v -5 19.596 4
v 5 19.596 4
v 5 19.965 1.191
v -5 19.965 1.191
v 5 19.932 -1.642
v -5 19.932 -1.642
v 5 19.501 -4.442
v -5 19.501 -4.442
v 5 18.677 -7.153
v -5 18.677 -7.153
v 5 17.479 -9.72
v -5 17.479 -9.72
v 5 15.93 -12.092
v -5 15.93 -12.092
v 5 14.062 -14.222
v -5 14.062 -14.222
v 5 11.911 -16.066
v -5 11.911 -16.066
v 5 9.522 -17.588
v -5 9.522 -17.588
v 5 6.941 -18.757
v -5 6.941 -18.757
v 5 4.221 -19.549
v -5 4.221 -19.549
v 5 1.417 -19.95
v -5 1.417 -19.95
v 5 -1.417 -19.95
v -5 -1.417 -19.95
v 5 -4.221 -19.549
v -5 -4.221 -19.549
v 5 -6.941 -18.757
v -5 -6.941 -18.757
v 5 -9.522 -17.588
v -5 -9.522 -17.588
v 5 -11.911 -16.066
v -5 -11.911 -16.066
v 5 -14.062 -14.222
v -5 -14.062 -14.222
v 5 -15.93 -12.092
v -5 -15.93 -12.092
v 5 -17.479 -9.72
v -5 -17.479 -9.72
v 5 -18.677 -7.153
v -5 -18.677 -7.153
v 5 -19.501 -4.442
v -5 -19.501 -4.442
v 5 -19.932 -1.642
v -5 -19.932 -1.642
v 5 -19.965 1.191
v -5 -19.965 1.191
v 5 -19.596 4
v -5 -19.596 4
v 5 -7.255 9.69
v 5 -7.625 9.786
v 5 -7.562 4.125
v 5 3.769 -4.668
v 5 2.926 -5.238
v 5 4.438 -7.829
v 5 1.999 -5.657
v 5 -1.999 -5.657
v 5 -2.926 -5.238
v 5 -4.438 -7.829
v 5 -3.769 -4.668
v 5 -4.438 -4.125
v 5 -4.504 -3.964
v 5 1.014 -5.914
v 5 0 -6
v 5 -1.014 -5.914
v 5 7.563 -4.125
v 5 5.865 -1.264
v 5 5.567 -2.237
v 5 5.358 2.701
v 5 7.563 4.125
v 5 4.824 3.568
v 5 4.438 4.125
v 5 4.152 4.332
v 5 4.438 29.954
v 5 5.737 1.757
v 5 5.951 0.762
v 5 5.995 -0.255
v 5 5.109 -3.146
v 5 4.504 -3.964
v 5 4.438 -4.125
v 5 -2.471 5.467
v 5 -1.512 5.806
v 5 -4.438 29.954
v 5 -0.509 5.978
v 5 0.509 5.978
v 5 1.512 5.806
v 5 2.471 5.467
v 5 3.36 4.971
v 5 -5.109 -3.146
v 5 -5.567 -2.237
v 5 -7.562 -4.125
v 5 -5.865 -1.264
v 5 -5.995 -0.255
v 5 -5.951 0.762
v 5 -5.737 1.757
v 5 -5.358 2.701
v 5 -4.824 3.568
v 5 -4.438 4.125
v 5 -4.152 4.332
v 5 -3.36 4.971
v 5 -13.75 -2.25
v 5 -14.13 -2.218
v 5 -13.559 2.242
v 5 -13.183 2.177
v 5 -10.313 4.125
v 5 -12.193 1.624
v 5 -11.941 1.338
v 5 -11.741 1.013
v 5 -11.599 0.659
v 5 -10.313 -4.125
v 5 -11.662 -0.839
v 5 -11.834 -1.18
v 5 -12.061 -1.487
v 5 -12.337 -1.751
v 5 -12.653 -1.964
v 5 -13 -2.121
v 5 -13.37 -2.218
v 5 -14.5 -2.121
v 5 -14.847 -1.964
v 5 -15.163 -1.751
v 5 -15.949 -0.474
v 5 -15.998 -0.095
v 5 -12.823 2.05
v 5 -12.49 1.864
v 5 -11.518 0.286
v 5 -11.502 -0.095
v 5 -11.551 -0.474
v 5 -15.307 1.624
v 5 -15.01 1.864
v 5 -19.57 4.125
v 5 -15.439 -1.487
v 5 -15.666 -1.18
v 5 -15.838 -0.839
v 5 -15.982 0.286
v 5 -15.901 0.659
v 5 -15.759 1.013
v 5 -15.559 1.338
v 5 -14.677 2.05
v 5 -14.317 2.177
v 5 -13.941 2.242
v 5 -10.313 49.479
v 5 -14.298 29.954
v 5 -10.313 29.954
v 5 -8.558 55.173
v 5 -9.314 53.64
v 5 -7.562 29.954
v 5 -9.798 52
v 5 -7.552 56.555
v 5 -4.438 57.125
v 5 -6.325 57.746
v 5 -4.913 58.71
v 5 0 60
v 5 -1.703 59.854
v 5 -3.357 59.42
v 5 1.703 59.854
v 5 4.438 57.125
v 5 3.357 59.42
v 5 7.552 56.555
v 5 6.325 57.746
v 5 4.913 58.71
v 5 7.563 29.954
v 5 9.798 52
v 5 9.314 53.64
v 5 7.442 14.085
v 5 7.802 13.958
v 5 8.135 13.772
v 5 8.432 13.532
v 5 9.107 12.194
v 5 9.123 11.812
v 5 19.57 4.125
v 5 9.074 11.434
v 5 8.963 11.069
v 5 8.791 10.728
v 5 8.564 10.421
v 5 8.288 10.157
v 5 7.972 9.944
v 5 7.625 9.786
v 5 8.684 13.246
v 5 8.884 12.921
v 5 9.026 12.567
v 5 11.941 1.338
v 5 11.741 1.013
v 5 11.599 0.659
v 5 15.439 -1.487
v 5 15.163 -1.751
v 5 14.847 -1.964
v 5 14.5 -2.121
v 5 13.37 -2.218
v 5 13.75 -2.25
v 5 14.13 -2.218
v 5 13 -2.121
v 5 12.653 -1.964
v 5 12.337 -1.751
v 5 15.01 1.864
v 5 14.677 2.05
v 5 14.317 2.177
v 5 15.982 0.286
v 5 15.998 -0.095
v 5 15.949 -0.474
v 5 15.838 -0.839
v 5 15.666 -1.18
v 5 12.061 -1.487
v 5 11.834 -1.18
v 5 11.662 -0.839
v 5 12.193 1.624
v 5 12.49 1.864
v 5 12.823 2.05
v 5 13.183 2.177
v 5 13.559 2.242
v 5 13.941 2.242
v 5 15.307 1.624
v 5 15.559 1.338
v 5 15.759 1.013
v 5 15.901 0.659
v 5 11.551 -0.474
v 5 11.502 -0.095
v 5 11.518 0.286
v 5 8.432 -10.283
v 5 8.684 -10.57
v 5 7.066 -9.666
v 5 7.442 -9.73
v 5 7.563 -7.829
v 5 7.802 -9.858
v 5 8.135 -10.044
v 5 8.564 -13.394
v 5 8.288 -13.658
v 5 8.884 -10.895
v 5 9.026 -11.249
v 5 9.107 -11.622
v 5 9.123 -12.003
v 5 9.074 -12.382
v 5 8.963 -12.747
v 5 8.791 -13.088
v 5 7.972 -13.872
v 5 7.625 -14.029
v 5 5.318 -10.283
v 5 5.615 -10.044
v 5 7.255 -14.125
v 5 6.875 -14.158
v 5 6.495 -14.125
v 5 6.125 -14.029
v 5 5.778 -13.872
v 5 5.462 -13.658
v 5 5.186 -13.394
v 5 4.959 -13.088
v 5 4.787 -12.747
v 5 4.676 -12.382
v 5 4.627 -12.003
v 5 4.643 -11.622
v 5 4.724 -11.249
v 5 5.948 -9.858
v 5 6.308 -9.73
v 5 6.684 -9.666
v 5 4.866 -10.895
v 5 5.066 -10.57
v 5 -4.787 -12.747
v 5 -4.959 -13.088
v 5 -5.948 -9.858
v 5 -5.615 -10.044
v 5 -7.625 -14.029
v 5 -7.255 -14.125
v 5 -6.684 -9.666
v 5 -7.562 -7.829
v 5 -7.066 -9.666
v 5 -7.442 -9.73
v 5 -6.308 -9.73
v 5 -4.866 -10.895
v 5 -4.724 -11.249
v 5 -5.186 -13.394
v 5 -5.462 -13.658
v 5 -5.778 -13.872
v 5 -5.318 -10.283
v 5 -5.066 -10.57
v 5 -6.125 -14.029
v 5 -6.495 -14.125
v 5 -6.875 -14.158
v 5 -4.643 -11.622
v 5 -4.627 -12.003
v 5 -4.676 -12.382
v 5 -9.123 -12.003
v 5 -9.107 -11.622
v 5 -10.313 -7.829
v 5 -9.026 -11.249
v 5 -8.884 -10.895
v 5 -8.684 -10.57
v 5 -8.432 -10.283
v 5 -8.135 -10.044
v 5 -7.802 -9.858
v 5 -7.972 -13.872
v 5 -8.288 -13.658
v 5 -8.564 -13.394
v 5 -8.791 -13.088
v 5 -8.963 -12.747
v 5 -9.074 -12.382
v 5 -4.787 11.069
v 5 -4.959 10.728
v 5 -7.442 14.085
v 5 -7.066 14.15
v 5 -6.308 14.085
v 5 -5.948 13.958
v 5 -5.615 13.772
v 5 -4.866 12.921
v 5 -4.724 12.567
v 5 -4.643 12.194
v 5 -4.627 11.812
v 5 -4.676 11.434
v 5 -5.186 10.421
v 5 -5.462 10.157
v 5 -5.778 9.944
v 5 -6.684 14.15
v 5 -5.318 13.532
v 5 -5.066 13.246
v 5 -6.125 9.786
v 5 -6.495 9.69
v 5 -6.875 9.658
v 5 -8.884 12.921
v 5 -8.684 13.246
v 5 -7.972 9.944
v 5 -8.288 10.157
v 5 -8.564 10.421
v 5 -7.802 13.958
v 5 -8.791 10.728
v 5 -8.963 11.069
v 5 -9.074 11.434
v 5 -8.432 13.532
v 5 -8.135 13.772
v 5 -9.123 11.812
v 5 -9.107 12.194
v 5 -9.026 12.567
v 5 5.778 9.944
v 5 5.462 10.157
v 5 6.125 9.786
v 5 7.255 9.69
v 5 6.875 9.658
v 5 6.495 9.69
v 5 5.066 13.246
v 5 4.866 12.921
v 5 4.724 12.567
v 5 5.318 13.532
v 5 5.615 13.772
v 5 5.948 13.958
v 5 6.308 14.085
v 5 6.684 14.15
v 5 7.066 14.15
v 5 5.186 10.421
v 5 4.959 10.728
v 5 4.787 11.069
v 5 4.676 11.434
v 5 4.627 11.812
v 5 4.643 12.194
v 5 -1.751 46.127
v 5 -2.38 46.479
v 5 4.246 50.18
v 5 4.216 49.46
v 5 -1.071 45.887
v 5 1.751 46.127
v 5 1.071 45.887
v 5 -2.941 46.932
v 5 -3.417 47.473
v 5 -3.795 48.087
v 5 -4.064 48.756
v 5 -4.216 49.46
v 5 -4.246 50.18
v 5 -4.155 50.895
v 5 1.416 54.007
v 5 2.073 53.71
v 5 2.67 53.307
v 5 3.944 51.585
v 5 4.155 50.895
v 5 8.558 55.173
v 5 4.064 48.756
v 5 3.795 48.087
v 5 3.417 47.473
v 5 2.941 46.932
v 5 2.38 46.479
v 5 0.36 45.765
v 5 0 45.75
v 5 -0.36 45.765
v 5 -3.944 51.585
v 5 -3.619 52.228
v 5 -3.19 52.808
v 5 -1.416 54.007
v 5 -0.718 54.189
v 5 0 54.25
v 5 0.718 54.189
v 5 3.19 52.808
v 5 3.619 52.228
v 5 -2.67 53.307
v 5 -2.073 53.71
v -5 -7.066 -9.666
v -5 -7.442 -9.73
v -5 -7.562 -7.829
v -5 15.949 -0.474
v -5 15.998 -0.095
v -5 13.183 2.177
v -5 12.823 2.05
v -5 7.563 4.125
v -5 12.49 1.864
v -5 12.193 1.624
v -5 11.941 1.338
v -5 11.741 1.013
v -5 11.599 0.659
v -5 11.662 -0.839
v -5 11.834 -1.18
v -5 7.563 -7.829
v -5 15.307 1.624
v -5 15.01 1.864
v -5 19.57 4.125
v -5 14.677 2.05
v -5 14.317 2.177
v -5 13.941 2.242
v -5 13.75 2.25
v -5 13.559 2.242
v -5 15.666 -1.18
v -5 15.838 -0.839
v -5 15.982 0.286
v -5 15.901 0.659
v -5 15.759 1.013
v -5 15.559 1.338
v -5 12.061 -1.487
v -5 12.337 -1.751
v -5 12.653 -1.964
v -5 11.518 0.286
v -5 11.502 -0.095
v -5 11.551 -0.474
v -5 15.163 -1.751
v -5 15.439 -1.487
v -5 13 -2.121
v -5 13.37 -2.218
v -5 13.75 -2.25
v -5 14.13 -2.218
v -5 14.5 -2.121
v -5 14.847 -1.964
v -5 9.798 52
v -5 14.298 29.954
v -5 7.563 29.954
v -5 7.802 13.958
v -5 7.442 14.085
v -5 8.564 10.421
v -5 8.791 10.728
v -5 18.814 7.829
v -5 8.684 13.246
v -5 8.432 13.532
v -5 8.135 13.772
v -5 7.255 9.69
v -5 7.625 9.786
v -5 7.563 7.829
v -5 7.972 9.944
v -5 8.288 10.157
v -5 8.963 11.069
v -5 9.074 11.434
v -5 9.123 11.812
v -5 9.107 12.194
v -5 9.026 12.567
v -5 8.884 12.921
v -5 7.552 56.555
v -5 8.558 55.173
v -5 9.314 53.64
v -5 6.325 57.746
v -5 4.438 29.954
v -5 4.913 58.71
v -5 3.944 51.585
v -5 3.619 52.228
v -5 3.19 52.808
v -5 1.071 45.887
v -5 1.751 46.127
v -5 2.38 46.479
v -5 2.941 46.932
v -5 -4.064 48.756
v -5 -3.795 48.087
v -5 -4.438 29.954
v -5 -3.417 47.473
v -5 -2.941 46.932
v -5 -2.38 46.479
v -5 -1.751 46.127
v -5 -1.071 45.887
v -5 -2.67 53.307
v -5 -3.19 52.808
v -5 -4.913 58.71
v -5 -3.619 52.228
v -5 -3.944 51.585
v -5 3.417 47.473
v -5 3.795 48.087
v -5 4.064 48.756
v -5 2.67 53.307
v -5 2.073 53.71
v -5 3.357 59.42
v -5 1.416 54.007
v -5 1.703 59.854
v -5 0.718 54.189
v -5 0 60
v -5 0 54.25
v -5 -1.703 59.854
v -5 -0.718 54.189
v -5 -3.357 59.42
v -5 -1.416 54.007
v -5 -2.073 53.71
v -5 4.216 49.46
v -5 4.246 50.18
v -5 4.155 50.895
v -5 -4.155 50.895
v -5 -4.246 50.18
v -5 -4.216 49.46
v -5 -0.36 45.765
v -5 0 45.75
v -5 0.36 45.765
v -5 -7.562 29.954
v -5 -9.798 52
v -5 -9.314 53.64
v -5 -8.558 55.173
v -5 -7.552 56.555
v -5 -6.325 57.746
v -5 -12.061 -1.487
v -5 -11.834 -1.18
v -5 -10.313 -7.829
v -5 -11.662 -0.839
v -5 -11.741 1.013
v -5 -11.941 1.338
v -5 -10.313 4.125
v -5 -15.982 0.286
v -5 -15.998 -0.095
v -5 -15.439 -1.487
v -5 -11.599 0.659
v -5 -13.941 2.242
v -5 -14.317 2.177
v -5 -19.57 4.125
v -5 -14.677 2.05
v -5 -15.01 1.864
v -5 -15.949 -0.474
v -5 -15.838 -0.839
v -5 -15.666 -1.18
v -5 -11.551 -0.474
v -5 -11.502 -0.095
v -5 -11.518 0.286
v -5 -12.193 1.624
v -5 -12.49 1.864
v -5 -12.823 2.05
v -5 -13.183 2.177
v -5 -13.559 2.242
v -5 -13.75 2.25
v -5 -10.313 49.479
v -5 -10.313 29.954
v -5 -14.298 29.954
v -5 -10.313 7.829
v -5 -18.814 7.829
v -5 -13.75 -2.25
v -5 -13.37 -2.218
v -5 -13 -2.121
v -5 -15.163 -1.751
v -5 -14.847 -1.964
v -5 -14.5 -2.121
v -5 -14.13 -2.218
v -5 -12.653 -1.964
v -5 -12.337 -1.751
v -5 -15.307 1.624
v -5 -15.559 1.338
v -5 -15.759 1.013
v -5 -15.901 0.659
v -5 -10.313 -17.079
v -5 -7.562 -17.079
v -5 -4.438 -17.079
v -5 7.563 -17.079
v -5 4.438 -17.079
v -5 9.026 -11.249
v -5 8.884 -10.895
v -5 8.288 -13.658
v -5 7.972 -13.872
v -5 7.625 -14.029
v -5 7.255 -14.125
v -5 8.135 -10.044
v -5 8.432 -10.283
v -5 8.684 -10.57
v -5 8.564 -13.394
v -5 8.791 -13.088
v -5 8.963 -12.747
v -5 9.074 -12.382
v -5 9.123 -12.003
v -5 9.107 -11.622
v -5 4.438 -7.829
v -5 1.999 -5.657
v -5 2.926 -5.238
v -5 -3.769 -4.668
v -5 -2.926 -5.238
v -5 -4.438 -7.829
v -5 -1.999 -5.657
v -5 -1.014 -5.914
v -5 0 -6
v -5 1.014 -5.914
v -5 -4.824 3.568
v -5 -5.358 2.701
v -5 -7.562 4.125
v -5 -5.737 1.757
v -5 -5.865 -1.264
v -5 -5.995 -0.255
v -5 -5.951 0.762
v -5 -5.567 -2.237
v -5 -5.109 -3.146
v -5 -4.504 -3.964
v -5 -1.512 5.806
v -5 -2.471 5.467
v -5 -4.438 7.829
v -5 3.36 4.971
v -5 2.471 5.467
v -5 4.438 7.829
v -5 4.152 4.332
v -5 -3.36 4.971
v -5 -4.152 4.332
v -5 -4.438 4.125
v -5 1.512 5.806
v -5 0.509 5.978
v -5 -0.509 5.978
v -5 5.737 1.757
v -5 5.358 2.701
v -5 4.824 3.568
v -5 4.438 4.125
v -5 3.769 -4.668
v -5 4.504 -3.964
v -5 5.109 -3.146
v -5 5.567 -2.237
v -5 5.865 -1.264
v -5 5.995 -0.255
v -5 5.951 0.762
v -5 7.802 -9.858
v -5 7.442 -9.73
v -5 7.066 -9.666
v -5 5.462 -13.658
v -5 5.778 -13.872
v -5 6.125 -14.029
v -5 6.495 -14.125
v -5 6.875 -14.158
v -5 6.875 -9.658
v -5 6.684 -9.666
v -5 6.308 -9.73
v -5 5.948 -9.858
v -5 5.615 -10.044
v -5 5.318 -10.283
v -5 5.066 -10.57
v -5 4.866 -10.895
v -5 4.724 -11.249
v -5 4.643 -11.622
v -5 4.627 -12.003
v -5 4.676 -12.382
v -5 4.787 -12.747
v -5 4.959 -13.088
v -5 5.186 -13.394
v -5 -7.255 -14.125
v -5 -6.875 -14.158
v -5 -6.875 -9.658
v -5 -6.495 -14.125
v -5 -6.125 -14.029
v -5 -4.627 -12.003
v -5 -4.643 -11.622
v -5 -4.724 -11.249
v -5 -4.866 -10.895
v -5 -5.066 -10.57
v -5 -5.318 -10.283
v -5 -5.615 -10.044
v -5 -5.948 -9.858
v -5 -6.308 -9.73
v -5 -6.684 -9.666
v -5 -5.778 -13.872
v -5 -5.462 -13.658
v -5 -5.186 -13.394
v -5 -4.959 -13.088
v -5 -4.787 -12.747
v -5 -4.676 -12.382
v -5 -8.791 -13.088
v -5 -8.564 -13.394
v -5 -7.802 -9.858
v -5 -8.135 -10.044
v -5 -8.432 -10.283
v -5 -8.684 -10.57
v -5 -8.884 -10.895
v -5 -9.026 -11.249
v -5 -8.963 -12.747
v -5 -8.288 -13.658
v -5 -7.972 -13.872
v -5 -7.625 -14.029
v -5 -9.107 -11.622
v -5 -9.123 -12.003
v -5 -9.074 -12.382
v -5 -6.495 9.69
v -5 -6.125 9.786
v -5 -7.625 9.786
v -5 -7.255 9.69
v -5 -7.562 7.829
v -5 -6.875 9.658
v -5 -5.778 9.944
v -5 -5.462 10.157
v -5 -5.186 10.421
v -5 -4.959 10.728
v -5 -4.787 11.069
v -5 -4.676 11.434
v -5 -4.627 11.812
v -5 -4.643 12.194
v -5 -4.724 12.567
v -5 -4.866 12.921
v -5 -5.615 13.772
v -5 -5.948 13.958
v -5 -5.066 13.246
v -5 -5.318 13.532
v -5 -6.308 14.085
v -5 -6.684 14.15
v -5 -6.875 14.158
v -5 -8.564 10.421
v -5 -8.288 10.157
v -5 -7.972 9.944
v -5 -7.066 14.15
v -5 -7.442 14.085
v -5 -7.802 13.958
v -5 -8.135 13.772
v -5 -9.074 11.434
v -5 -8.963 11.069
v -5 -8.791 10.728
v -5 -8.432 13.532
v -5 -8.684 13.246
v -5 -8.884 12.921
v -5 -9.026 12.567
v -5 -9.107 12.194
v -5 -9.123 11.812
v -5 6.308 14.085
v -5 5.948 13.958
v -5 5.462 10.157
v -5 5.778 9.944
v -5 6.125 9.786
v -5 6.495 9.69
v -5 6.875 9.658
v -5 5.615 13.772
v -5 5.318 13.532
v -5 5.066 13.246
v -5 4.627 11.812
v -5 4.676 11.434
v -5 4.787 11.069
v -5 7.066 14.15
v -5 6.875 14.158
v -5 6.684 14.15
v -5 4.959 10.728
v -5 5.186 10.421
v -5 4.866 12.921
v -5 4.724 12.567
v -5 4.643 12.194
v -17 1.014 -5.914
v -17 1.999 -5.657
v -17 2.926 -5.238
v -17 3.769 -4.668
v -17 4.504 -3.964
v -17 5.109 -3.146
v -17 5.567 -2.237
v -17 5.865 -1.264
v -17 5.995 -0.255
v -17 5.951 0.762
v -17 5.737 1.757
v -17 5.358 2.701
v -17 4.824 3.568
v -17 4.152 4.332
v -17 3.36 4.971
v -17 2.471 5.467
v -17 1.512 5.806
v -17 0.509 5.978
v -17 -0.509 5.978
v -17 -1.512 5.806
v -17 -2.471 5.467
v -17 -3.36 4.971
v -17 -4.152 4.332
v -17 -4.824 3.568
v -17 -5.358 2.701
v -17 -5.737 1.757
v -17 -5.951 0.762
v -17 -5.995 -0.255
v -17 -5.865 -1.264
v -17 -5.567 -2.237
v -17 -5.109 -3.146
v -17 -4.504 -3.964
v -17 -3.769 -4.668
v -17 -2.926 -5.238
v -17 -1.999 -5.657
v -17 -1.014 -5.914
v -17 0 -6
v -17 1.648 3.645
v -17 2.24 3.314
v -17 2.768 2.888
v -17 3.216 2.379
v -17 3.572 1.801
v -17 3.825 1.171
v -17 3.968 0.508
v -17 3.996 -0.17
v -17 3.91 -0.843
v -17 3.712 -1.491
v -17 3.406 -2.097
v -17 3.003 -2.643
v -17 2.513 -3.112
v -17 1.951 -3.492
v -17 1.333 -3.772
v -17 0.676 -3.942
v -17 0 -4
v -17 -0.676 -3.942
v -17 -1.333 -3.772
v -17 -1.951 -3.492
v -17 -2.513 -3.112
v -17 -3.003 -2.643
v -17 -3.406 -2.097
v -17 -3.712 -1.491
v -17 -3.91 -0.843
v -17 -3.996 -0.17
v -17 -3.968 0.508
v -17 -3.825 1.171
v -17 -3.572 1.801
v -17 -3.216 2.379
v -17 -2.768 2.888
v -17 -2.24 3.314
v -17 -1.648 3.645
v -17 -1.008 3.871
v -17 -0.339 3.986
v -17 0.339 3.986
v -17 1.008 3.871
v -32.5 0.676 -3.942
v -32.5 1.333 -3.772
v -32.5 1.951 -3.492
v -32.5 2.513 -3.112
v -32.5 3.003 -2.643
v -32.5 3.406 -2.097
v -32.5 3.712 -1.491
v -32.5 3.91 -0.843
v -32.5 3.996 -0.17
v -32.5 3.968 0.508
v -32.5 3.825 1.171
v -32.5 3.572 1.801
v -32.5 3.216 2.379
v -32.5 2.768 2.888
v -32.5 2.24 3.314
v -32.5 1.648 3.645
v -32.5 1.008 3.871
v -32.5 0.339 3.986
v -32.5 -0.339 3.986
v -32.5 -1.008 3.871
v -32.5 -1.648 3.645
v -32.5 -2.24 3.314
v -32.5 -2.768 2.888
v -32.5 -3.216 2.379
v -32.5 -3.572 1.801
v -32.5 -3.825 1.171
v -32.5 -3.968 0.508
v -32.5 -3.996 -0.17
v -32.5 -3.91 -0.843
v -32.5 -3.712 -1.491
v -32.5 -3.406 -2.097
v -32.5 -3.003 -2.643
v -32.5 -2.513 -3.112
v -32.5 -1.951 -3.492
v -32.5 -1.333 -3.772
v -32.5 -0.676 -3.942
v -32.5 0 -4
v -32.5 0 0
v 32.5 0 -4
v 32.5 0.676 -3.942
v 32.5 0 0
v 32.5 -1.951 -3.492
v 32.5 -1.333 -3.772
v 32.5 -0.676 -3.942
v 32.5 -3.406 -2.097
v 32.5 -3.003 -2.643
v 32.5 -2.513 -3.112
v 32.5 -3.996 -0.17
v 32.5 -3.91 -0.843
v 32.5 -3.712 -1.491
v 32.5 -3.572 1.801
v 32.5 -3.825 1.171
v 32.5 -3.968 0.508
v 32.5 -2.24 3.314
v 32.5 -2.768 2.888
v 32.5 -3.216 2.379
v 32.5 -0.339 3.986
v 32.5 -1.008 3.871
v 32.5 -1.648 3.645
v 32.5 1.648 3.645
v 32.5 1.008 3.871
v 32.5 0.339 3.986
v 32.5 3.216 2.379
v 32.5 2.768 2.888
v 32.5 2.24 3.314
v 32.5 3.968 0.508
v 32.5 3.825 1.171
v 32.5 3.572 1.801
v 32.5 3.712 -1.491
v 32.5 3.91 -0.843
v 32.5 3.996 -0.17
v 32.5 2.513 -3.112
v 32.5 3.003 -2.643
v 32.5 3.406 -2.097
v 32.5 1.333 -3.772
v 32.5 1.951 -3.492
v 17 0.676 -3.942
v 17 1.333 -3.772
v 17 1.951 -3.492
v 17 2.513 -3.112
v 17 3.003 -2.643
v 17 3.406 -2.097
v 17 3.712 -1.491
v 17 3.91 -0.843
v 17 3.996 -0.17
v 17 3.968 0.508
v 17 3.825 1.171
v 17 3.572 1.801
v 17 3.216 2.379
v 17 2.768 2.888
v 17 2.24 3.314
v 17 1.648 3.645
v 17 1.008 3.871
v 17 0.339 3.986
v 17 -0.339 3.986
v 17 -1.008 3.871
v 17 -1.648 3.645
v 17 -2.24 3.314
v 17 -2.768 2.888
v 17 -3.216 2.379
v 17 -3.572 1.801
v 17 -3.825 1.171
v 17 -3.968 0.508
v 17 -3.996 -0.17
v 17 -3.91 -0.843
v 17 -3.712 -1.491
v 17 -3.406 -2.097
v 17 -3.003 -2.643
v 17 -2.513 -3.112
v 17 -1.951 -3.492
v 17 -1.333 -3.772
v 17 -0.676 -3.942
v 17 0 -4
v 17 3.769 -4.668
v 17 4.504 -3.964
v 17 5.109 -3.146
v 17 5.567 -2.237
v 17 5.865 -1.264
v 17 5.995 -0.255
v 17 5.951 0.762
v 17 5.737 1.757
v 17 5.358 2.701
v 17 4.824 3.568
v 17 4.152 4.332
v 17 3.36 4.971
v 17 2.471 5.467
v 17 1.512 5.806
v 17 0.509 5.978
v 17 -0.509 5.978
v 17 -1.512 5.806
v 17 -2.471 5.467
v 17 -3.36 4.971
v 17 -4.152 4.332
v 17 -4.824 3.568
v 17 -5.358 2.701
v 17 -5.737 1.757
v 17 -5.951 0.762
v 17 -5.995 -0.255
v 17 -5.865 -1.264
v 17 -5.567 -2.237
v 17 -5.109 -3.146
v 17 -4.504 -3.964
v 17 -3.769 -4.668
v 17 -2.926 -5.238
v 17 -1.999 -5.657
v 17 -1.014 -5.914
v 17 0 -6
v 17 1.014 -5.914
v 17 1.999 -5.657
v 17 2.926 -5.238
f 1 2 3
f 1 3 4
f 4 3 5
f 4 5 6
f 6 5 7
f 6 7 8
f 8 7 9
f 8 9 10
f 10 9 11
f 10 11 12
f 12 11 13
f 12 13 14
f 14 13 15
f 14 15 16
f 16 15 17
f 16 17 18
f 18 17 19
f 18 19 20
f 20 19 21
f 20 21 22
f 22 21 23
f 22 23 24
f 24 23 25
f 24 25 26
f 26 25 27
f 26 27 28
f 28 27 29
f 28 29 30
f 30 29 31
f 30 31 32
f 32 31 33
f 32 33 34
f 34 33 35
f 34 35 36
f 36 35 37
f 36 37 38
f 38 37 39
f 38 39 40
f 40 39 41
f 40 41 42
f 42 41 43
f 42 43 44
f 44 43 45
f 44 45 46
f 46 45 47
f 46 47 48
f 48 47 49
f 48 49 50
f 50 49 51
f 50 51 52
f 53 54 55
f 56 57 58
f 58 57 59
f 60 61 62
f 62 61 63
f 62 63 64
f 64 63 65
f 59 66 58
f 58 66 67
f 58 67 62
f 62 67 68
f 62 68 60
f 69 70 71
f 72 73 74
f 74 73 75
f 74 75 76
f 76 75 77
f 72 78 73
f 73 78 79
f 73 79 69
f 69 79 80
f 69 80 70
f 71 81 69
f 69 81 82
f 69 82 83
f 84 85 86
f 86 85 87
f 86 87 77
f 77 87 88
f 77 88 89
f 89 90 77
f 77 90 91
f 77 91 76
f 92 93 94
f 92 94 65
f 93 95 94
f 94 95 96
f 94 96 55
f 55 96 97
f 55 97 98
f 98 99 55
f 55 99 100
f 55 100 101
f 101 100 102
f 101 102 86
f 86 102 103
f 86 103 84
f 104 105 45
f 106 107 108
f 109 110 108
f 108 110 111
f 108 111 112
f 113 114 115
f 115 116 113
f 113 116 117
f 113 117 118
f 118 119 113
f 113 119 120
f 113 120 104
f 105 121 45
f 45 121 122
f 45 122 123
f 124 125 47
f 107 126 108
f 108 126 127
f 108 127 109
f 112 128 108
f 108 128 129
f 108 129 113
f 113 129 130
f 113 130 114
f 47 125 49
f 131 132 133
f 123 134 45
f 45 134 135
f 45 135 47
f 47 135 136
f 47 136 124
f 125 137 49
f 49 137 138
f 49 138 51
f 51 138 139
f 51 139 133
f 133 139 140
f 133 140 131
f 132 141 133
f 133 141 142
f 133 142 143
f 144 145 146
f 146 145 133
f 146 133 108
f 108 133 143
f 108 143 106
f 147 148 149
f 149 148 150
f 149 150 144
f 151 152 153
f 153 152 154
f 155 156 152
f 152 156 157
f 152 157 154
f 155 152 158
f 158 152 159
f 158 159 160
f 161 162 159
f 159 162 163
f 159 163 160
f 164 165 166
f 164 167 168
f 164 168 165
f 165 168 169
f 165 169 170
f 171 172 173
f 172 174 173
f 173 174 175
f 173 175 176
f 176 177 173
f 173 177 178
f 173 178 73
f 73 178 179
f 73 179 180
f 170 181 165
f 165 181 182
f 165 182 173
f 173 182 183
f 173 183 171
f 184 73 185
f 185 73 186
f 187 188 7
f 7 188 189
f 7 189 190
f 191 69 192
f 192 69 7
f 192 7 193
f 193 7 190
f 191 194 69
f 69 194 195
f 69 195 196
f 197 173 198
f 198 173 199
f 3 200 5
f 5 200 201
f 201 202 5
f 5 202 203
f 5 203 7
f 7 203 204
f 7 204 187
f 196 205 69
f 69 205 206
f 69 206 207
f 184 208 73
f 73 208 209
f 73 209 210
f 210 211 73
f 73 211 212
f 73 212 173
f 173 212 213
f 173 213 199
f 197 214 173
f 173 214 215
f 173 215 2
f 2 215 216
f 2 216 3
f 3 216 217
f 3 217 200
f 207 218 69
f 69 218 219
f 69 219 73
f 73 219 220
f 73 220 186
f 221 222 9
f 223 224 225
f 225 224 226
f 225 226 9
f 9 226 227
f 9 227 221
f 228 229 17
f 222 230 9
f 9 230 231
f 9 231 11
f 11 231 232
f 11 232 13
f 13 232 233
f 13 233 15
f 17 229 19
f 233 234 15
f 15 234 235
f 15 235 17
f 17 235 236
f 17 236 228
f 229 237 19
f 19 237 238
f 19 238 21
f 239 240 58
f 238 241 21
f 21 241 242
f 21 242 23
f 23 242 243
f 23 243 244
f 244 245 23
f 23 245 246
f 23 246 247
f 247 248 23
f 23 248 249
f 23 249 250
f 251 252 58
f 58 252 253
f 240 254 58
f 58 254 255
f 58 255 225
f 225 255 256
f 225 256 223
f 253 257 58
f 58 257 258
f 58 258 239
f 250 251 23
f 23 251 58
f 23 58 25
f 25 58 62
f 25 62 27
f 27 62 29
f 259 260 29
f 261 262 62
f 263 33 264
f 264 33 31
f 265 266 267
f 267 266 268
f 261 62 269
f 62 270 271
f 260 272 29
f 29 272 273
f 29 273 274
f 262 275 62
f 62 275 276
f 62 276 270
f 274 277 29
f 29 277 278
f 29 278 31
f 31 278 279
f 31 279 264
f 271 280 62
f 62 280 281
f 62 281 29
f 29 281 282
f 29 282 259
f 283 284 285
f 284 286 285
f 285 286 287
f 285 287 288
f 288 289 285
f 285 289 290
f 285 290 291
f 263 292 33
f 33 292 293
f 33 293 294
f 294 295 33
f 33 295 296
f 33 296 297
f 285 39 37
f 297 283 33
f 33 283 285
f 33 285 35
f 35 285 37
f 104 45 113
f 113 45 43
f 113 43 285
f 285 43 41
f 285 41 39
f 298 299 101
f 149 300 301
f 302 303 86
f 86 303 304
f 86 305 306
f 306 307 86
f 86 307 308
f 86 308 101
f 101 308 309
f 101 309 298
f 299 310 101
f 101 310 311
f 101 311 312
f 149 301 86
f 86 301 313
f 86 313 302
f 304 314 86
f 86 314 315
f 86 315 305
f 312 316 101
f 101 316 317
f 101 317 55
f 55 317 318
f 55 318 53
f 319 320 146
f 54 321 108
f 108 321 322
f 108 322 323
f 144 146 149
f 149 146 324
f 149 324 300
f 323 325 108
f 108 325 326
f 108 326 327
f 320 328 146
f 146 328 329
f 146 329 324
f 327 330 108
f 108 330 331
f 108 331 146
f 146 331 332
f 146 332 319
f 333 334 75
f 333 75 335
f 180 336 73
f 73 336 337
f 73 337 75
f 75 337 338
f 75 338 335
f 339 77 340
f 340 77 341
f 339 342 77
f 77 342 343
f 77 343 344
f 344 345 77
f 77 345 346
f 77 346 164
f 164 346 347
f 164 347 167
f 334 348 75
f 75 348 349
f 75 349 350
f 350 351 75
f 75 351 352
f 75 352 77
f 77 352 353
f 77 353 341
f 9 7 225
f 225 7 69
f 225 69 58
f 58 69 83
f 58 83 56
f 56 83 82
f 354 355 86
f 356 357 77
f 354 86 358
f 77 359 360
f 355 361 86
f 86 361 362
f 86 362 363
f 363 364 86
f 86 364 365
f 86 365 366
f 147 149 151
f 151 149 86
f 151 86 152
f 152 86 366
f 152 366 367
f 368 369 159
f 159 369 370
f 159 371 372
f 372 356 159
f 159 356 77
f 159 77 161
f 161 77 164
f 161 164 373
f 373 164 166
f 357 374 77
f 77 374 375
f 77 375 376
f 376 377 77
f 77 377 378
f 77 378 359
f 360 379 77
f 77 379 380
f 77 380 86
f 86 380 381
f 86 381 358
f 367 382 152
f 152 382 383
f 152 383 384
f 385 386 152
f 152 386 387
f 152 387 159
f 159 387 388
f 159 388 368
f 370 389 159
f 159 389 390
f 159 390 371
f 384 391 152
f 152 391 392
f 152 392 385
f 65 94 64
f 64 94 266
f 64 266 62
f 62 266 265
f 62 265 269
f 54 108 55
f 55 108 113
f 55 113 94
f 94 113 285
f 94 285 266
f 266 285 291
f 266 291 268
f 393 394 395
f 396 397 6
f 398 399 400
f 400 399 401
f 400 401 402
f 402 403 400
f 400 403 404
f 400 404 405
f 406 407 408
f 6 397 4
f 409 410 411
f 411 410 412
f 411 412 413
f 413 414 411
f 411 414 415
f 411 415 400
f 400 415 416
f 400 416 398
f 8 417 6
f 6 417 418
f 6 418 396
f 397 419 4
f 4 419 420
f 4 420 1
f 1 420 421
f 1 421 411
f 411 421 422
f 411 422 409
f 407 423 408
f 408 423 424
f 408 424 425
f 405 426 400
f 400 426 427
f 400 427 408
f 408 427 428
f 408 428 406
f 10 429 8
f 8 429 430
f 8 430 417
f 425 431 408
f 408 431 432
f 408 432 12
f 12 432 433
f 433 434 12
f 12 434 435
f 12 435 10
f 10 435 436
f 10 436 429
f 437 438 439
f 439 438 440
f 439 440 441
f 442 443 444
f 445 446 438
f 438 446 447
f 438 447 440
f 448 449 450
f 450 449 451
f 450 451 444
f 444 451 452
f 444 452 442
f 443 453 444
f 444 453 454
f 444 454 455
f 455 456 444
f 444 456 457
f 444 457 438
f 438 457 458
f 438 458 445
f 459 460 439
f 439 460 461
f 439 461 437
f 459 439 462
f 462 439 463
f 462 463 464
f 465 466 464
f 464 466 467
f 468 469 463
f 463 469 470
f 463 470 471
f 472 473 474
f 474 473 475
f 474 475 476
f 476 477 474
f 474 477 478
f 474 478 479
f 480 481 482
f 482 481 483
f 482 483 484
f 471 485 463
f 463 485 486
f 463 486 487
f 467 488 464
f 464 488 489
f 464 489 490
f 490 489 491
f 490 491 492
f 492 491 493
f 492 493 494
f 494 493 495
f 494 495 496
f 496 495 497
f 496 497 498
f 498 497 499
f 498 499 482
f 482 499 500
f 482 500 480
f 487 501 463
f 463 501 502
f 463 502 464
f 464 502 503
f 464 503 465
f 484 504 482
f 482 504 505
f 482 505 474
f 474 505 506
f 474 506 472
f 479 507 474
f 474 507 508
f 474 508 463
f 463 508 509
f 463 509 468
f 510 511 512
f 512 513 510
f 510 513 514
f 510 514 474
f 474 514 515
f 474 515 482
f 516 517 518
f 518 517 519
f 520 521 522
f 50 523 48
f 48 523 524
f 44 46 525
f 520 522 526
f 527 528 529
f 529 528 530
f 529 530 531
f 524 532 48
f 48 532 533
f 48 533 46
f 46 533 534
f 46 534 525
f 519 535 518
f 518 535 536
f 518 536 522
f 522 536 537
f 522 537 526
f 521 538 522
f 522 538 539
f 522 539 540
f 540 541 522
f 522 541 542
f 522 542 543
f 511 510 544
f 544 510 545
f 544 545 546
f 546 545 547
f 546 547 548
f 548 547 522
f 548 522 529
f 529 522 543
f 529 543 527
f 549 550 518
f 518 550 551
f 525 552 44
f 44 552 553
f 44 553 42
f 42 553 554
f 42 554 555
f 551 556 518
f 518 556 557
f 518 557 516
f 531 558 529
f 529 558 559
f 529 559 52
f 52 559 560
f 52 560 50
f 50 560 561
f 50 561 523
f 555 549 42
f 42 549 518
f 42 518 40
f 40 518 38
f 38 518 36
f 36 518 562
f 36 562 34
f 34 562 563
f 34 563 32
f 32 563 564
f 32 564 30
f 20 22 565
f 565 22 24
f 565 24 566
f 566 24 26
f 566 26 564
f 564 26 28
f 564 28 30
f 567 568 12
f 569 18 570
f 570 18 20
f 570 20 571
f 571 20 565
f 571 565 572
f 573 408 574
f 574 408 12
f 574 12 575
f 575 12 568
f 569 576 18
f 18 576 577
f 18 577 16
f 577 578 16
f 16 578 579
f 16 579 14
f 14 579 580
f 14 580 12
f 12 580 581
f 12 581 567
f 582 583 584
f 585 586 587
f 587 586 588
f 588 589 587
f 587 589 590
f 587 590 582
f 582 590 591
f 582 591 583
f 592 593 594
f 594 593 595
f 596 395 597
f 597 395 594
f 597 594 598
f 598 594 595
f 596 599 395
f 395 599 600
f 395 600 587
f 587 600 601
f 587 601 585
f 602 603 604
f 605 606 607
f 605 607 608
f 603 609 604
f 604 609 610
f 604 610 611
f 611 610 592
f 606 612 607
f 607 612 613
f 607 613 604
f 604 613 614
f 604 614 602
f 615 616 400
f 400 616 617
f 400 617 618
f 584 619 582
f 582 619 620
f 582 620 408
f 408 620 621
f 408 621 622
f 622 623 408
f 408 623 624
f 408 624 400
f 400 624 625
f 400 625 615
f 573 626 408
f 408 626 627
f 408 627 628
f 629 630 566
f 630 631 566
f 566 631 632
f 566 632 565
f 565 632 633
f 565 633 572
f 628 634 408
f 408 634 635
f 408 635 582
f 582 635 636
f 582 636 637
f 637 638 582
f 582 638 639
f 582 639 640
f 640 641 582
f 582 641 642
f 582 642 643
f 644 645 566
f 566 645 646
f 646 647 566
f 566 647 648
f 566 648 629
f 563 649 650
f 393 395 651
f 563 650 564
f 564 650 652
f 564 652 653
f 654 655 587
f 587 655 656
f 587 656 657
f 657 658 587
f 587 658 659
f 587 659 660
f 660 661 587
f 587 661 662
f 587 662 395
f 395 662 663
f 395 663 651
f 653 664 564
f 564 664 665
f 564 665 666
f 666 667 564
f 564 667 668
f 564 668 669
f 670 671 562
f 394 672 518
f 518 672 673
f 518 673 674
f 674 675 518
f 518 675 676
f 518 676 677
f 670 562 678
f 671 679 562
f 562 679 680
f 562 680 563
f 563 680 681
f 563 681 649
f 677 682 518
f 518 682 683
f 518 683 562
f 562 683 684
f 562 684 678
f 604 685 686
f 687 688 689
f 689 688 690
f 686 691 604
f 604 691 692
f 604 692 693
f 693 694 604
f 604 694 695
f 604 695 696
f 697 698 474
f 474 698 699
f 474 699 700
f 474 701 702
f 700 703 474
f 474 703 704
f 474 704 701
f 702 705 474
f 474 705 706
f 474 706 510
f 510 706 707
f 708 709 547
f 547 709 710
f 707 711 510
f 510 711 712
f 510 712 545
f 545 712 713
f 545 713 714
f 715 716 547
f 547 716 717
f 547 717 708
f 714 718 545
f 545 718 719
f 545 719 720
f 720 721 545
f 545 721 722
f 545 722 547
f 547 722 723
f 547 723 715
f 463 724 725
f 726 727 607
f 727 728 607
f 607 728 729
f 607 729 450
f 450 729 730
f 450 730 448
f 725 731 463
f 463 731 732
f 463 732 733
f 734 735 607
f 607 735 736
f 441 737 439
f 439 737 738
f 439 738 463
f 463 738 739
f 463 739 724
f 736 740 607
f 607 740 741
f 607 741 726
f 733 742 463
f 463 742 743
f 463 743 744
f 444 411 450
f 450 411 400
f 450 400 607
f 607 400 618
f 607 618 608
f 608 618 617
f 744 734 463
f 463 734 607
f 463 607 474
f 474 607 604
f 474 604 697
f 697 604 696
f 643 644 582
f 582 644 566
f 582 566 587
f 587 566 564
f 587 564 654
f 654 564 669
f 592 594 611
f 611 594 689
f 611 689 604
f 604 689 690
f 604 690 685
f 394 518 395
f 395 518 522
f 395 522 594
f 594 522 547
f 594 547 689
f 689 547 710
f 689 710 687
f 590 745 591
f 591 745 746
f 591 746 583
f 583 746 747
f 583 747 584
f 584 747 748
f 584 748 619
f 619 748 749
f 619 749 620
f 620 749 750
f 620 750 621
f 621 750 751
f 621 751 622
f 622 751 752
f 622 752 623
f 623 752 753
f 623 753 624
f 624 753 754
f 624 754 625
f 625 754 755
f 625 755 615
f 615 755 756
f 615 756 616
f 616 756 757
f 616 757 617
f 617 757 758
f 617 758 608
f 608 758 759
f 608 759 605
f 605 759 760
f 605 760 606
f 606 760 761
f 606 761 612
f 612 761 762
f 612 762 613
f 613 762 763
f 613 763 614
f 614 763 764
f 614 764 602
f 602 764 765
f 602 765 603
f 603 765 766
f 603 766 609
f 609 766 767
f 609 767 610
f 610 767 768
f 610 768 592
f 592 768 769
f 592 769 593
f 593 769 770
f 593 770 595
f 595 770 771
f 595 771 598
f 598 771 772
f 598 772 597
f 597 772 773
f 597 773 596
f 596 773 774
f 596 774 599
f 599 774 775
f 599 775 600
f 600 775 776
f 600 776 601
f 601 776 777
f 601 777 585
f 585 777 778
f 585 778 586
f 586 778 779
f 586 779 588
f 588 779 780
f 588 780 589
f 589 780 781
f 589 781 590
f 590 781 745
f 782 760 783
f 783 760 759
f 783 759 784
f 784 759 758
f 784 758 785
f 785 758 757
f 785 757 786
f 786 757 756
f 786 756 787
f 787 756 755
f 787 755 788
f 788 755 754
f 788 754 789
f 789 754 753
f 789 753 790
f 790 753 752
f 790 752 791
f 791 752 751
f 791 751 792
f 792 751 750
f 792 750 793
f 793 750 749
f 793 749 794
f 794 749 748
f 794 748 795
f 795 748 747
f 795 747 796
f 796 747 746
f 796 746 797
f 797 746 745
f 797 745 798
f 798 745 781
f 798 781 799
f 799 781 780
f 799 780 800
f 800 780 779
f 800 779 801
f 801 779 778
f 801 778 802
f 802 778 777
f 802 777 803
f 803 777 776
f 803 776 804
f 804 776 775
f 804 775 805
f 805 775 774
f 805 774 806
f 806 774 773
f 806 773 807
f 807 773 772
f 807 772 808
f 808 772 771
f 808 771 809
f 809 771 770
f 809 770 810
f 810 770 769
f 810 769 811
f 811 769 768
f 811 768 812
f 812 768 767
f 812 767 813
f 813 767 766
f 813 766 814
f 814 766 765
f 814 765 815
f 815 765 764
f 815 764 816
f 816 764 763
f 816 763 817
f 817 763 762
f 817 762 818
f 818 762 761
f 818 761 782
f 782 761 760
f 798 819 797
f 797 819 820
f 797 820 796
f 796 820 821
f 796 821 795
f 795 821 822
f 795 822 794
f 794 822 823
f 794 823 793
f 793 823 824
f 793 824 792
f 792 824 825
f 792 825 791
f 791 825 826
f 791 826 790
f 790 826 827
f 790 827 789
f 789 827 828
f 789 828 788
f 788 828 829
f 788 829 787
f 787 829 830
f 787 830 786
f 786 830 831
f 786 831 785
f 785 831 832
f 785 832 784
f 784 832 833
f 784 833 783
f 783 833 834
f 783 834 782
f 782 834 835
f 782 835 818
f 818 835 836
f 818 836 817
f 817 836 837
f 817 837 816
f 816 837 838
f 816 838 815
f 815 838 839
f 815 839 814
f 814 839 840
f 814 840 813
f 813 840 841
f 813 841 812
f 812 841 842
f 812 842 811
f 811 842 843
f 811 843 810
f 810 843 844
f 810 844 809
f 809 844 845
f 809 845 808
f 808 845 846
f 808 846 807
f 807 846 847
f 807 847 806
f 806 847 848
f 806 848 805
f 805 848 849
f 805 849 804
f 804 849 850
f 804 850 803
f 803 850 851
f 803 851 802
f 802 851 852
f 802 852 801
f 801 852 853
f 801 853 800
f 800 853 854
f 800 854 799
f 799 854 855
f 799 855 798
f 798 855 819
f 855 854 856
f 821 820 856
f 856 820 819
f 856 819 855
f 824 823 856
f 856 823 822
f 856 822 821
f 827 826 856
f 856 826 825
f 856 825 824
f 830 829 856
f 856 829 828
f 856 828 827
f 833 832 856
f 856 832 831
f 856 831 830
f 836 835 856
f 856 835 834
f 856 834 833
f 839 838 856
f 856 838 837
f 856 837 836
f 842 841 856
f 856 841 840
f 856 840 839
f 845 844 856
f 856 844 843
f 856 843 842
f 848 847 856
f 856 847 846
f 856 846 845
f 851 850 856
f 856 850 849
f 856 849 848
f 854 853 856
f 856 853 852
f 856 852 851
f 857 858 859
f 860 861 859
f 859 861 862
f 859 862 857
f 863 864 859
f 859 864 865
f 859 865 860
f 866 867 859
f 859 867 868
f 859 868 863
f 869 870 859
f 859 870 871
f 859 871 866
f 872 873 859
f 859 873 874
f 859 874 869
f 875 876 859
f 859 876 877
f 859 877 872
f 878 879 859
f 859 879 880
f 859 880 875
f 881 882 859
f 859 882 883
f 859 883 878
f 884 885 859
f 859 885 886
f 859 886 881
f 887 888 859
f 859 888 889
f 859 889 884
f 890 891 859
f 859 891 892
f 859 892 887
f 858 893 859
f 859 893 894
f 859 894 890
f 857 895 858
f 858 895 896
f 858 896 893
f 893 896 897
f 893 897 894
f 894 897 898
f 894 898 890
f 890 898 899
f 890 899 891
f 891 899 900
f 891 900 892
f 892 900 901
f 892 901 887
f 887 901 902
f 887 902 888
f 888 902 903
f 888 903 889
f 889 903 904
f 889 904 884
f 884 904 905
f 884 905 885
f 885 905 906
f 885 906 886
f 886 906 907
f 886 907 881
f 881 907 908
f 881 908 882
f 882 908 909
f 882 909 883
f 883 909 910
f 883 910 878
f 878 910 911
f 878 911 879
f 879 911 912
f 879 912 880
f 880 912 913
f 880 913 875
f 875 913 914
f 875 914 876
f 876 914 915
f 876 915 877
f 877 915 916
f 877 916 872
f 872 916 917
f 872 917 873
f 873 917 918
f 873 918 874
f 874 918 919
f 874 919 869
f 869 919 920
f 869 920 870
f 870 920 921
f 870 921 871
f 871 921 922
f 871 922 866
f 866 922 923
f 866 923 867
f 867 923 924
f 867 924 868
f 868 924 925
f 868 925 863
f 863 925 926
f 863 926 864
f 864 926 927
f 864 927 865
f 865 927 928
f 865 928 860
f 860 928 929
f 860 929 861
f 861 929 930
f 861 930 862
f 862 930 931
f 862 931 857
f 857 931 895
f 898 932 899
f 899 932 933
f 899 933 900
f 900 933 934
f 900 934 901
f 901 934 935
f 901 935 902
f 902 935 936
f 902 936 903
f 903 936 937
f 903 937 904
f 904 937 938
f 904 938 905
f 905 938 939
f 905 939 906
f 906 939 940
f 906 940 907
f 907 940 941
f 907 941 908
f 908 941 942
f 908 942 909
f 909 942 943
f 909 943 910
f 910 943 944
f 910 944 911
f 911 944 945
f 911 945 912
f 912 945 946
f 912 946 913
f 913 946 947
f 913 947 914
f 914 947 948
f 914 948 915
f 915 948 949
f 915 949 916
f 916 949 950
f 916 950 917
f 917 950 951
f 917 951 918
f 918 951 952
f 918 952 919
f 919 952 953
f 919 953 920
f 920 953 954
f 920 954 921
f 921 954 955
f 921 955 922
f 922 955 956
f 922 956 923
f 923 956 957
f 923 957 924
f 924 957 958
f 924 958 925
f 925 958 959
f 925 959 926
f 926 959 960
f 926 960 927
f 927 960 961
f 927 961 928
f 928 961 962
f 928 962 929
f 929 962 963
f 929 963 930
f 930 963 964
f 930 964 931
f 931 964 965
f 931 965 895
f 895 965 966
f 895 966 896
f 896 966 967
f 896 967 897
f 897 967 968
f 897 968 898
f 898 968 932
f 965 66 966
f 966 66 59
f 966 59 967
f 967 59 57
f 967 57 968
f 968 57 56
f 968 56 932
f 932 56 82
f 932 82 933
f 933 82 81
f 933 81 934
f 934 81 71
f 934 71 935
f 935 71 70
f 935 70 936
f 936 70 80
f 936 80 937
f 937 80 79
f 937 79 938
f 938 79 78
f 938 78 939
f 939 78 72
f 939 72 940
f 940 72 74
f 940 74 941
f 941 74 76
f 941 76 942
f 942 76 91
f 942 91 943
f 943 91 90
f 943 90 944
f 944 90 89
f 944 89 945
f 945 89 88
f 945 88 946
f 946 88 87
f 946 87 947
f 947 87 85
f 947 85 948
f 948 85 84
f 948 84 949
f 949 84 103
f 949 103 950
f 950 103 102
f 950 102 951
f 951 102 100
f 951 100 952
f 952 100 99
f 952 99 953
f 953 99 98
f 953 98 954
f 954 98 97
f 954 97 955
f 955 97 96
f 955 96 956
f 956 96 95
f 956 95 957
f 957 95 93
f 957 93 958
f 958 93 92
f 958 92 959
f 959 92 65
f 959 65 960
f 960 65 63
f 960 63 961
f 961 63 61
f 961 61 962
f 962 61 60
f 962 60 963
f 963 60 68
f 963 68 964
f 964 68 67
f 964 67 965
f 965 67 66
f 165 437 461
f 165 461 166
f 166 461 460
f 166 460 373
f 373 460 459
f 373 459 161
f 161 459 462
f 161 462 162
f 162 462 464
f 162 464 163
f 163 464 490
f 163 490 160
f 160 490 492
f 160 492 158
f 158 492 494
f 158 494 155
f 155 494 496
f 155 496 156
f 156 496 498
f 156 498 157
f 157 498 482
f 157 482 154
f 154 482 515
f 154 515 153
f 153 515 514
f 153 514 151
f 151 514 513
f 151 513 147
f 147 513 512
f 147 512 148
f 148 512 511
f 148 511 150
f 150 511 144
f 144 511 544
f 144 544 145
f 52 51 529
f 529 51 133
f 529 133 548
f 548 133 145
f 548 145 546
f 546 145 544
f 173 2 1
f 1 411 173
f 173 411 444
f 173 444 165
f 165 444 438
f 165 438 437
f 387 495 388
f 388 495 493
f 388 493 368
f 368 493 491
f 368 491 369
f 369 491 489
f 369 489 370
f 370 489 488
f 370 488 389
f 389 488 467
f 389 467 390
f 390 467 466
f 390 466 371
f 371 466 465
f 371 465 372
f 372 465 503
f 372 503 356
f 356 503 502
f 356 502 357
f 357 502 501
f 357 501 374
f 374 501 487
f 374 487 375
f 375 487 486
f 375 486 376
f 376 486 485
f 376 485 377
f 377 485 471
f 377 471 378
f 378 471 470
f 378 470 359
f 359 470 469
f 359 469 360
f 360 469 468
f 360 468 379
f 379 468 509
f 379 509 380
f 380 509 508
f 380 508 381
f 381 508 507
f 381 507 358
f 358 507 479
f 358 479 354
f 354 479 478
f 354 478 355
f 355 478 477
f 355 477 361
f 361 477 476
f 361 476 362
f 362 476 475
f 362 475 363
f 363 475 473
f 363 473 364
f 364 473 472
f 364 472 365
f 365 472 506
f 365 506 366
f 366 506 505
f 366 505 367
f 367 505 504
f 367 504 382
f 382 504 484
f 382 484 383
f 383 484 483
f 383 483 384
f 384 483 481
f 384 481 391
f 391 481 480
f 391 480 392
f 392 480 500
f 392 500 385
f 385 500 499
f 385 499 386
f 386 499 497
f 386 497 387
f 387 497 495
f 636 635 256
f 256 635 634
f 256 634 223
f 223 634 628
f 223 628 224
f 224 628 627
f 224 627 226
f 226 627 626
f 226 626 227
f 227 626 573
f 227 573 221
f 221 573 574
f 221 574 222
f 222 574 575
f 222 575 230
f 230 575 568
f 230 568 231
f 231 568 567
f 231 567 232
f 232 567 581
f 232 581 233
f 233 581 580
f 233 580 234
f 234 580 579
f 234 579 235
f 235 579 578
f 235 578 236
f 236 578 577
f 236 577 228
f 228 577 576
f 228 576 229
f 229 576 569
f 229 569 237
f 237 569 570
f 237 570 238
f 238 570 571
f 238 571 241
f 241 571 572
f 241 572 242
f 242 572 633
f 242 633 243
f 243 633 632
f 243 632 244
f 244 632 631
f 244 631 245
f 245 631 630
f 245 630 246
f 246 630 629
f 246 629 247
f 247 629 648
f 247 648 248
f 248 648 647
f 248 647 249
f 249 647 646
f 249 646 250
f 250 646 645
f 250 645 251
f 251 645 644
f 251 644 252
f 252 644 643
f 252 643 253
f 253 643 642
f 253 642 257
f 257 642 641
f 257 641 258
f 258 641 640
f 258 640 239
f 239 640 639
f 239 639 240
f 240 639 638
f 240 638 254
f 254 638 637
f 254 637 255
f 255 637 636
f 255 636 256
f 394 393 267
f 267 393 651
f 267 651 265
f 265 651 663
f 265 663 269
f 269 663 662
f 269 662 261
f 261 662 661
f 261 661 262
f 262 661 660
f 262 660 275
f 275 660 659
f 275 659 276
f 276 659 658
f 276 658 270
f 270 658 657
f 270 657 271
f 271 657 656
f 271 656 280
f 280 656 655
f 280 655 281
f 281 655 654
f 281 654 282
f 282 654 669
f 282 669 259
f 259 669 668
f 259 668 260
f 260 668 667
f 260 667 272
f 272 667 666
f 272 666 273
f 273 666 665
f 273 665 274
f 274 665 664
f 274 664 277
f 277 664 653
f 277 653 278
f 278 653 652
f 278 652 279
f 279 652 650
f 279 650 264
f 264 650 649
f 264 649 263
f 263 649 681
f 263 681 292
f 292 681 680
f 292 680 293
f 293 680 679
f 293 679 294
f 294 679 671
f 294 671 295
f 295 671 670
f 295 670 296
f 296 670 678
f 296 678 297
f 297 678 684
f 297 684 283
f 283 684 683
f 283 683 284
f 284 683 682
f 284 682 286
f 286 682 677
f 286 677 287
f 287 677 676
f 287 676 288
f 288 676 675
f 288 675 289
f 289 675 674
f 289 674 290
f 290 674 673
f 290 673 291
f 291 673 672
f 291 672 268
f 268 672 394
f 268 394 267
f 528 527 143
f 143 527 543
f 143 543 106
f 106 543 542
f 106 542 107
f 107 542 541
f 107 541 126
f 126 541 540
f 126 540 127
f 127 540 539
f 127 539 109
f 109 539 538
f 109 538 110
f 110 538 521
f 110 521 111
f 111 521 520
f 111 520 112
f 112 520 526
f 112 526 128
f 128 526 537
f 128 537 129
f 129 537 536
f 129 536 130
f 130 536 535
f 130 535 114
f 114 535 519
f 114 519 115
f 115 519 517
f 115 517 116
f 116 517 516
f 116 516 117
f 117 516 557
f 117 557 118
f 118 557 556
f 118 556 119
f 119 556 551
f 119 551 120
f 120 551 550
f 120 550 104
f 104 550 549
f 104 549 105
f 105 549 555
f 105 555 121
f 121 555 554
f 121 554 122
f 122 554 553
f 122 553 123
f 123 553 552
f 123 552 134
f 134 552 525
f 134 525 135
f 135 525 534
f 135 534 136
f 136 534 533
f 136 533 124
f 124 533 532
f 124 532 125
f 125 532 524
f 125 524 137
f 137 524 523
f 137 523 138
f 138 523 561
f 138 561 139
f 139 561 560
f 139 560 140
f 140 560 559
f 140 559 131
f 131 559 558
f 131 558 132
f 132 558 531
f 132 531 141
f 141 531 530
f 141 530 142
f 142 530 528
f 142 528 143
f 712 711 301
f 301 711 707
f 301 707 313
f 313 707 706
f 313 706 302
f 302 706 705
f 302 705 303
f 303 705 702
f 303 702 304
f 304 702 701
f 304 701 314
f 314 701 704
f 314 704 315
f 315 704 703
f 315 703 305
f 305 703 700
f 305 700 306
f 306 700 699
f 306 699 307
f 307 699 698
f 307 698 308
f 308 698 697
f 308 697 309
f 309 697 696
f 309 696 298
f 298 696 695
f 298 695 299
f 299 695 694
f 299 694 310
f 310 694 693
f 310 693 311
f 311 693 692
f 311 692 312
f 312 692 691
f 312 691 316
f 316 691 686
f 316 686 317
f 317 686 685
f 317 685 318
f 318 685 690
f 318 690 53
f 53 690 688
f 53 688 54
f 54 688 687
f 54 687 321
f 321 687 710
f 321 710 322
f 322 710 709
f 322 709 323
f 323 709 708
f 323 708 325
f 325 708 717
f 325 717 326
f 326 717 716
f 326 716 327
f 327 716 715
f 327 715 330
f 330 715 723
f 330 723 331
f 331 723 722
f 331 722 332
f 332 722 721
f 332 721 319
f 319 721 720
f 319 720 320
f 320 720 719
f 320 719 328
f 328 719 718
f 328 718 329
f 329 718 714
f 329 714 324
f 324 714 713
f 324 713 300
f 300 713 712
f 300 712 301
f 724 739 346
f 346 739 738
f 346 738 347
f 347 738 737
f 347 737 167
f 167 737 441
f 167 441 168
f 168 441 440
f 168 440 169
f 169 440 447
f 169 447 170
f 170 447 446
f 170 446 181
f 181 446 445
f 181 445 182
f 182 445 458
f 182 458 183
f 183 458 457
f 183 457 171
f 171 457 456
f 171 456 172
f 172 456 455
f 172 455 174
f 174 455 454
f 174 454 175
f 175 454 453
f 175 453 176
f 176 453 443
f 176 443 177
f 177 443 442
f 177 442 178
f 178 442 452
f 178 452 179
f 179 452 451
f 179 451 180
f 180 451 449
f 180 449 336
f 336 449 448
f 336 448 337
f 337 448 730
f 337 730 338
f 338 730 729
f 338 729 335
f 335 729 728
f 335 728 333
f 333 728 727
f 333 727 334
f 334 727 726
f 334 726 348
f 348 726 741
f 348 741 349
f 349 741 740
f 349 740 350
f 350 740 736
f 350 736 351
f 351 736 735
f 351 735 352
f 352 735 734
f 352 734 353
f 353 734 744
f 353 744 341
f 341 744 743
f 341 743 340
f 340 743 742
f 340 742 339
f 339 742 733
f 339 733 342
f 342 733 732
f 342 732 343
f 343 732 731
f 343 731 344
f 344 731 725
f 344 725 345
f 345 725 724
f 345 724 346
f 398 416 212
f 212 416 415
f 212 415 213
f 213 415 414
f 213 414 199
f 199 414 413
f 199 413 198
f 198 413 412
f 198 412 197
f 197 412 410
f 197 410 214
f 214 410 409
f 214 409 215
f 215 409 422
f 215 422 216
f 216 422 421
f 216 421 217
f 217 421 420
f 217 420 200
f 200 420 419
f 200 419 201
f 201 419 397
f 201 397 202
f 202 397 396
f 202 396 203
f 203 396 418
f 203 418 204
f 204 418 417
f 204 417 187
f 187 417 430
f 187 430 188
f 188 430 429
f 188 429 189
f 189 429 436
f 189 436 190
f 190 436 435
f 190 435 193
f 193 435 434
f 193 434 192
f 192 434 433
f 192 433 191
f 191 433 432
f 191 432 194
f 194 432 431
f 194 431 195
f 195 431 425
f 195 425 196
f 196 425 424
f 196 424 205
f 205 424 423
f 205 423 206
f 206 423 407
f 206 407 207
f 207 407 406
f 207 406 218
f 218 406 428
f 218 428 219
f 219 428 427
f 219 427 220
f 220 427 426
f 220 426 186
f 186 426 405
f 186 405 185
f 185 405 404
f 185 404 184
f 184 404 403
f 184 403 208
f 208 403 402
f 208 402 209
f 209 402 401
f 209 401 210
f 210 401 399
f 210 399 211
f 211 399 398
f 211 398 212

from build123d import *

# Parameters (mm, degrees)
CROQUIS2_R              = 4.25
SALIENTE_EXTRUIR1_DEPTH = 5
CORTAR_EXTRUIR1_REACH   = 75.527
CROQUIS3_R              = 2.25


with BuildPart() as part:
    # Croquis1 → Revolución1 (revolve)
    with BuildSketch(Plane.XY, mode=Mode.PRIVATE) as revoluci_n1_sk:
        Polygon((32.5, 0), (-32.5, 0), (-32.5, 4), (-17, 4), (-17, 6), (-5, 6), (-5, 20), (5, 20), (5, 6), (17, 6), (17, 4), (32.5, 4), align=None)
    revolve(revoluci_n1_sk.sketch.rotate(Axis((32.5, 0, 0), (-1, 0, 0)), 90), axis=Axis((32.5, 0, 0), (-1, 0, 0)))

    # Croquis2 → Saliente-Extruir1 (add, symmetric)
    with BuildSketch(Plane(origin=(0, 0, 0), x_dir=(0, 0, -1), z_dir=(1, 0, 0))):
        with BuildLine():
            Line((-52, 9.797958971), (-4, 19.595917942))
            ThreePointArc((-4, 19.595917942), (20, 0), (-4, -19.595917942))
            Line((-4, -19.595917942), (-52, -9.797958971))
            ThreePointArc((-52, -9.797958971), (-60, 0), (-52, 9.797958971))
        make_face()
        with Locations((-50, 0)):
            Circle(CROQUIS2_R, mode=Mode.SUBTRACT)
    extrude(amount=SALIENTE_EXTRUIR1_DEPTH, both=True)

    # Croquis3 → Cortar-Extruir1 (cut, up to next)
    with BuildSketch(Plane(origin=(5, 0, 0), x_dir=(0, 0, -1), z_dir=(1, 0, 0)), mode=Mode.PRIVATE) as cortar_extruir1_sk1:
        with Locations((0, 13.75)):
            Circle(CROQUIS3_R)
    cortar_extruir1_tool1 = extrude(cortar_extruir1_sk1.sketch, amount=-CORTAR_EXTRUIR1_REACH, mode=Mode.PRIVATE) & part.part
    # Croquis3 → Cortar-Extruir1 (cut, up to next)
    with BuildSketch(Plane(origin=(5, 0, 0), x_dir=(0, 0, -1), z_dir=(1, 0, 0)), mode=Mode.PRIVATE) as cortar_extruir1_sk2:
        with Locations((11.907849302, 6.875)):
            Circle(CROQUIS3_R)
    cortar_extruir1_tool2 = extrude(cortar_extruir1_sk2.sketch, amount=-CORTAR_EXTRUIR1_REACH, mode=Mode.PRIVATE) & part.part
    # Croquis3 → Cortar-Extruir1 (cut, up to next)
    with BuildSketch(Plane(origin=(5, 0, 0), x_dir=(0, 0, -1), z_dir=(1, 0, 0)), mode=Mode.PRIVATE) as cortar_extruir1_sk3:
        with Locations((11.907849302, -6.875)):
            Circle(CROQUIS3_R)
    cortar_extruir1_tool3 = extrude(cortar_extruir1_sk3.sketch, amount=-CORTAR_EXTRUIR1_REACH, mode=Mode.PRIVATE) & part.part
    # Croquis3 → Cortar-Extruir1 (cut, up to next)
    with BuildSketch(Plane(origin=(5, 0, 0), x_dir=(0, 0, -1), z_dir=(1, 0, 0)), mode=Mode.PRIVATE) as cortar_extruir1_sk4:
        with Locations((0, -13.75)):
            Circle(CROQUIS3_R)
    cortar_extruir1_tool4 = extrude(cortar_extruir1_sk4.sketch, amount=-CORTAR_EXTRUIR1_REACH, mode=Mode.PRIVATE) & part.part
    # Croquis3 → Cortar-Extruir1 (cut, up to next)
    with BuildSketch(Plane(origin=(5, 0, 0), x_dir=(0, 0, -1), z_dir=(1, 0, 0)), mode=Mode.PRIVATE) as cortar_extruir1_sk5:
        with Locations((-11.907849302, -6.875)):
            Circle(CROQUIS3_R)
    cortar_extruir1_tool5 = extrude(cortar_extruir1_sk5.sketch, amount=-CORTAR_EXTRUIR1_REACH, mode=Mode.PRIVATE) & part.part
    # Croquis3 → Cortar-Extruir1 (cut, up to next)
    with BuildSketch(Plane(origin=(5, 0, 0), x_dir=(0, 0, -1), z_dir=(1, 0, 0)), mode=Mode.PRIVATE) as cortar_extruir1_sk6:
        with Locations((-11.907849302, 6.875)):
            Circle(CROQUIS3_R)
    cortar_extruir1_tool6 = extrude(cortar_extruir1_sk6.sketch, amount=-CORTAR_EXTRUIR1_REACH, mode=Mode.PRIVATE) & part.part
    add(cortar_extruir1_tool1.solids().sort_by_distance((5, 13.75, 0))[0], mode=Mode.SUBTRACT)
    add(cortar_extruir1_tool2.solids().sort_by_distance((5, 6.875, -11.907849))[0], mode=Mode.SUBTRACT)
    add(cortar_extruir1_tool3.solids().sort_by_distance((5, -6.875, -11.907849))[0], mode=Mode.SUBTRACT)
    add(cortar_extruir1_tool4.solids().sort_by_distance((5, -13.75, 0))[0], mode=Mode.SUBTRACT)
    add(cortar_extruir1_tool5.solids().sort_by_distance((5, -6.875, 11.907849))[0], mode=Mode.SUBTRACT)
    add(cortar_extruir1_tool6.solids().sort_by_distance((5, 6.875, 11.907849))[0], mode=Mode.SUBTRACT)


solid = part.part
